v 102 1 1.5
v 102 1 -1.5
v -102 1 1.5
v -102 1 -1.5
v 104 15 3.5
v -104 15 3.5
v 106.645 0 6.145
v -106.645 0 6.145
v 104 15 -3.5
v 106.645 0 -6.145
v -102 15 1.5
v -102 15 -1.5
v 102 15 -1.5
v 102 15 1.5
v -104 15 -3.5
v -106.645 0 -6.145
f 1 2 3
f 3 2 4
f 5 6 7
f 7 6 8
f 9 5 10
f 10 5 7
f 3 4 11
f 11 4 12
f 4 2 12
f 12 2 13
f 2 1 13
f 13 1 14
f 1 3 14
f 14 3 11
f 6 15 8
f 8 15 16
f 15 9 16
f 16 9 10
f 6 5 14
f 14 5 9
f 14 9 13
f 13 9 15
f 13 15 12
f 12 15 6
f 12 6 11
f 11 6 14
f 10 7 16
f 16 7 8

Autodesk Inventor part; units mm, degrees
ref_plane "YZ Plane" through (0, 0, 0) normal (1, 0, 0) x (0, 1, 0)
ref_plane "XZ Plane" through (0, 0, 0) normal (0, 1, 0) x (-1, 0, 0)
ref_plane "XY Plane" through (0, 0, 0) normal (0, 0, 1) x (1, 0, 0)
sketch "Skizze1" plane through (0, 0, 0) normal (0, 1, 0) x (-1, 0, 0)
  line L0 (102, -1.5) -> (-102, -1.5)
  line L1 (-102, -1.5) -> (-102, 1.5)
  line L2 (-102, 1.5) -> (102, 1.5)
  line L3 (102, 1.5) -> (102, -1.5)
  line L4 (104, -3.5) -> (-104, -3.5)
  line L5 (-104, -3.5) -> (-104, 3.5)
  line L6 (-104, 3.5) -> (104, 3.5)
  line L7 (104, 3.5) -> (104, -3.5)
  line L8 (0, -4.9) -> (0, 4.9) projected
  line L9 (-145.6, 0) -> (145.6, 0) projected
  point P0 (0, 0)
  dimension "d0" = 204
  dimension "d2" = 3
  dimension "d3" = 2
  dimension "d4" = 2
extrude "Extrusion1" add sketch "Skizze1" along normal blind 15 contours L3 L9 L7 L4 L8 L0 | L8 L4 L5 L9 L1 L0 | L3 L2 L8 L6 L7 L9 | L9 L5 L6 L8 L2 L1
sketch "Skizze2" plane through (0, 0, 0) normal (0, 1, 0) x (-1, 0, 0)
  line L0 (104, 3.5) -> (-104, 3.5) projected
  line L1 (104, -3.5) -> (104, 3.5) projected
  line L2 (-104, -3.5) -> (104, -3.5) projected
  line L3 (-104, 3.5) -> (-104, -3.5) projected
  point P0 (0, 0)
extrude "Extrusion2" add sketch "Skizze2" along normal blind 1
draft "Flächenverjüngung1" angle 10 pull direction (0, 1, 0) faces at (34.6667, 5, -3.5) (104, 10, 1.1667) (-34.6667, 5, 3.5) (-104, 10, -1.1667) fixed edges at (0, 15, -3.5) (104, 15, 0) (0, 15, 3.5) (-104, 15, 0)
properties part number "Stroemungsfilter_Fuss"
